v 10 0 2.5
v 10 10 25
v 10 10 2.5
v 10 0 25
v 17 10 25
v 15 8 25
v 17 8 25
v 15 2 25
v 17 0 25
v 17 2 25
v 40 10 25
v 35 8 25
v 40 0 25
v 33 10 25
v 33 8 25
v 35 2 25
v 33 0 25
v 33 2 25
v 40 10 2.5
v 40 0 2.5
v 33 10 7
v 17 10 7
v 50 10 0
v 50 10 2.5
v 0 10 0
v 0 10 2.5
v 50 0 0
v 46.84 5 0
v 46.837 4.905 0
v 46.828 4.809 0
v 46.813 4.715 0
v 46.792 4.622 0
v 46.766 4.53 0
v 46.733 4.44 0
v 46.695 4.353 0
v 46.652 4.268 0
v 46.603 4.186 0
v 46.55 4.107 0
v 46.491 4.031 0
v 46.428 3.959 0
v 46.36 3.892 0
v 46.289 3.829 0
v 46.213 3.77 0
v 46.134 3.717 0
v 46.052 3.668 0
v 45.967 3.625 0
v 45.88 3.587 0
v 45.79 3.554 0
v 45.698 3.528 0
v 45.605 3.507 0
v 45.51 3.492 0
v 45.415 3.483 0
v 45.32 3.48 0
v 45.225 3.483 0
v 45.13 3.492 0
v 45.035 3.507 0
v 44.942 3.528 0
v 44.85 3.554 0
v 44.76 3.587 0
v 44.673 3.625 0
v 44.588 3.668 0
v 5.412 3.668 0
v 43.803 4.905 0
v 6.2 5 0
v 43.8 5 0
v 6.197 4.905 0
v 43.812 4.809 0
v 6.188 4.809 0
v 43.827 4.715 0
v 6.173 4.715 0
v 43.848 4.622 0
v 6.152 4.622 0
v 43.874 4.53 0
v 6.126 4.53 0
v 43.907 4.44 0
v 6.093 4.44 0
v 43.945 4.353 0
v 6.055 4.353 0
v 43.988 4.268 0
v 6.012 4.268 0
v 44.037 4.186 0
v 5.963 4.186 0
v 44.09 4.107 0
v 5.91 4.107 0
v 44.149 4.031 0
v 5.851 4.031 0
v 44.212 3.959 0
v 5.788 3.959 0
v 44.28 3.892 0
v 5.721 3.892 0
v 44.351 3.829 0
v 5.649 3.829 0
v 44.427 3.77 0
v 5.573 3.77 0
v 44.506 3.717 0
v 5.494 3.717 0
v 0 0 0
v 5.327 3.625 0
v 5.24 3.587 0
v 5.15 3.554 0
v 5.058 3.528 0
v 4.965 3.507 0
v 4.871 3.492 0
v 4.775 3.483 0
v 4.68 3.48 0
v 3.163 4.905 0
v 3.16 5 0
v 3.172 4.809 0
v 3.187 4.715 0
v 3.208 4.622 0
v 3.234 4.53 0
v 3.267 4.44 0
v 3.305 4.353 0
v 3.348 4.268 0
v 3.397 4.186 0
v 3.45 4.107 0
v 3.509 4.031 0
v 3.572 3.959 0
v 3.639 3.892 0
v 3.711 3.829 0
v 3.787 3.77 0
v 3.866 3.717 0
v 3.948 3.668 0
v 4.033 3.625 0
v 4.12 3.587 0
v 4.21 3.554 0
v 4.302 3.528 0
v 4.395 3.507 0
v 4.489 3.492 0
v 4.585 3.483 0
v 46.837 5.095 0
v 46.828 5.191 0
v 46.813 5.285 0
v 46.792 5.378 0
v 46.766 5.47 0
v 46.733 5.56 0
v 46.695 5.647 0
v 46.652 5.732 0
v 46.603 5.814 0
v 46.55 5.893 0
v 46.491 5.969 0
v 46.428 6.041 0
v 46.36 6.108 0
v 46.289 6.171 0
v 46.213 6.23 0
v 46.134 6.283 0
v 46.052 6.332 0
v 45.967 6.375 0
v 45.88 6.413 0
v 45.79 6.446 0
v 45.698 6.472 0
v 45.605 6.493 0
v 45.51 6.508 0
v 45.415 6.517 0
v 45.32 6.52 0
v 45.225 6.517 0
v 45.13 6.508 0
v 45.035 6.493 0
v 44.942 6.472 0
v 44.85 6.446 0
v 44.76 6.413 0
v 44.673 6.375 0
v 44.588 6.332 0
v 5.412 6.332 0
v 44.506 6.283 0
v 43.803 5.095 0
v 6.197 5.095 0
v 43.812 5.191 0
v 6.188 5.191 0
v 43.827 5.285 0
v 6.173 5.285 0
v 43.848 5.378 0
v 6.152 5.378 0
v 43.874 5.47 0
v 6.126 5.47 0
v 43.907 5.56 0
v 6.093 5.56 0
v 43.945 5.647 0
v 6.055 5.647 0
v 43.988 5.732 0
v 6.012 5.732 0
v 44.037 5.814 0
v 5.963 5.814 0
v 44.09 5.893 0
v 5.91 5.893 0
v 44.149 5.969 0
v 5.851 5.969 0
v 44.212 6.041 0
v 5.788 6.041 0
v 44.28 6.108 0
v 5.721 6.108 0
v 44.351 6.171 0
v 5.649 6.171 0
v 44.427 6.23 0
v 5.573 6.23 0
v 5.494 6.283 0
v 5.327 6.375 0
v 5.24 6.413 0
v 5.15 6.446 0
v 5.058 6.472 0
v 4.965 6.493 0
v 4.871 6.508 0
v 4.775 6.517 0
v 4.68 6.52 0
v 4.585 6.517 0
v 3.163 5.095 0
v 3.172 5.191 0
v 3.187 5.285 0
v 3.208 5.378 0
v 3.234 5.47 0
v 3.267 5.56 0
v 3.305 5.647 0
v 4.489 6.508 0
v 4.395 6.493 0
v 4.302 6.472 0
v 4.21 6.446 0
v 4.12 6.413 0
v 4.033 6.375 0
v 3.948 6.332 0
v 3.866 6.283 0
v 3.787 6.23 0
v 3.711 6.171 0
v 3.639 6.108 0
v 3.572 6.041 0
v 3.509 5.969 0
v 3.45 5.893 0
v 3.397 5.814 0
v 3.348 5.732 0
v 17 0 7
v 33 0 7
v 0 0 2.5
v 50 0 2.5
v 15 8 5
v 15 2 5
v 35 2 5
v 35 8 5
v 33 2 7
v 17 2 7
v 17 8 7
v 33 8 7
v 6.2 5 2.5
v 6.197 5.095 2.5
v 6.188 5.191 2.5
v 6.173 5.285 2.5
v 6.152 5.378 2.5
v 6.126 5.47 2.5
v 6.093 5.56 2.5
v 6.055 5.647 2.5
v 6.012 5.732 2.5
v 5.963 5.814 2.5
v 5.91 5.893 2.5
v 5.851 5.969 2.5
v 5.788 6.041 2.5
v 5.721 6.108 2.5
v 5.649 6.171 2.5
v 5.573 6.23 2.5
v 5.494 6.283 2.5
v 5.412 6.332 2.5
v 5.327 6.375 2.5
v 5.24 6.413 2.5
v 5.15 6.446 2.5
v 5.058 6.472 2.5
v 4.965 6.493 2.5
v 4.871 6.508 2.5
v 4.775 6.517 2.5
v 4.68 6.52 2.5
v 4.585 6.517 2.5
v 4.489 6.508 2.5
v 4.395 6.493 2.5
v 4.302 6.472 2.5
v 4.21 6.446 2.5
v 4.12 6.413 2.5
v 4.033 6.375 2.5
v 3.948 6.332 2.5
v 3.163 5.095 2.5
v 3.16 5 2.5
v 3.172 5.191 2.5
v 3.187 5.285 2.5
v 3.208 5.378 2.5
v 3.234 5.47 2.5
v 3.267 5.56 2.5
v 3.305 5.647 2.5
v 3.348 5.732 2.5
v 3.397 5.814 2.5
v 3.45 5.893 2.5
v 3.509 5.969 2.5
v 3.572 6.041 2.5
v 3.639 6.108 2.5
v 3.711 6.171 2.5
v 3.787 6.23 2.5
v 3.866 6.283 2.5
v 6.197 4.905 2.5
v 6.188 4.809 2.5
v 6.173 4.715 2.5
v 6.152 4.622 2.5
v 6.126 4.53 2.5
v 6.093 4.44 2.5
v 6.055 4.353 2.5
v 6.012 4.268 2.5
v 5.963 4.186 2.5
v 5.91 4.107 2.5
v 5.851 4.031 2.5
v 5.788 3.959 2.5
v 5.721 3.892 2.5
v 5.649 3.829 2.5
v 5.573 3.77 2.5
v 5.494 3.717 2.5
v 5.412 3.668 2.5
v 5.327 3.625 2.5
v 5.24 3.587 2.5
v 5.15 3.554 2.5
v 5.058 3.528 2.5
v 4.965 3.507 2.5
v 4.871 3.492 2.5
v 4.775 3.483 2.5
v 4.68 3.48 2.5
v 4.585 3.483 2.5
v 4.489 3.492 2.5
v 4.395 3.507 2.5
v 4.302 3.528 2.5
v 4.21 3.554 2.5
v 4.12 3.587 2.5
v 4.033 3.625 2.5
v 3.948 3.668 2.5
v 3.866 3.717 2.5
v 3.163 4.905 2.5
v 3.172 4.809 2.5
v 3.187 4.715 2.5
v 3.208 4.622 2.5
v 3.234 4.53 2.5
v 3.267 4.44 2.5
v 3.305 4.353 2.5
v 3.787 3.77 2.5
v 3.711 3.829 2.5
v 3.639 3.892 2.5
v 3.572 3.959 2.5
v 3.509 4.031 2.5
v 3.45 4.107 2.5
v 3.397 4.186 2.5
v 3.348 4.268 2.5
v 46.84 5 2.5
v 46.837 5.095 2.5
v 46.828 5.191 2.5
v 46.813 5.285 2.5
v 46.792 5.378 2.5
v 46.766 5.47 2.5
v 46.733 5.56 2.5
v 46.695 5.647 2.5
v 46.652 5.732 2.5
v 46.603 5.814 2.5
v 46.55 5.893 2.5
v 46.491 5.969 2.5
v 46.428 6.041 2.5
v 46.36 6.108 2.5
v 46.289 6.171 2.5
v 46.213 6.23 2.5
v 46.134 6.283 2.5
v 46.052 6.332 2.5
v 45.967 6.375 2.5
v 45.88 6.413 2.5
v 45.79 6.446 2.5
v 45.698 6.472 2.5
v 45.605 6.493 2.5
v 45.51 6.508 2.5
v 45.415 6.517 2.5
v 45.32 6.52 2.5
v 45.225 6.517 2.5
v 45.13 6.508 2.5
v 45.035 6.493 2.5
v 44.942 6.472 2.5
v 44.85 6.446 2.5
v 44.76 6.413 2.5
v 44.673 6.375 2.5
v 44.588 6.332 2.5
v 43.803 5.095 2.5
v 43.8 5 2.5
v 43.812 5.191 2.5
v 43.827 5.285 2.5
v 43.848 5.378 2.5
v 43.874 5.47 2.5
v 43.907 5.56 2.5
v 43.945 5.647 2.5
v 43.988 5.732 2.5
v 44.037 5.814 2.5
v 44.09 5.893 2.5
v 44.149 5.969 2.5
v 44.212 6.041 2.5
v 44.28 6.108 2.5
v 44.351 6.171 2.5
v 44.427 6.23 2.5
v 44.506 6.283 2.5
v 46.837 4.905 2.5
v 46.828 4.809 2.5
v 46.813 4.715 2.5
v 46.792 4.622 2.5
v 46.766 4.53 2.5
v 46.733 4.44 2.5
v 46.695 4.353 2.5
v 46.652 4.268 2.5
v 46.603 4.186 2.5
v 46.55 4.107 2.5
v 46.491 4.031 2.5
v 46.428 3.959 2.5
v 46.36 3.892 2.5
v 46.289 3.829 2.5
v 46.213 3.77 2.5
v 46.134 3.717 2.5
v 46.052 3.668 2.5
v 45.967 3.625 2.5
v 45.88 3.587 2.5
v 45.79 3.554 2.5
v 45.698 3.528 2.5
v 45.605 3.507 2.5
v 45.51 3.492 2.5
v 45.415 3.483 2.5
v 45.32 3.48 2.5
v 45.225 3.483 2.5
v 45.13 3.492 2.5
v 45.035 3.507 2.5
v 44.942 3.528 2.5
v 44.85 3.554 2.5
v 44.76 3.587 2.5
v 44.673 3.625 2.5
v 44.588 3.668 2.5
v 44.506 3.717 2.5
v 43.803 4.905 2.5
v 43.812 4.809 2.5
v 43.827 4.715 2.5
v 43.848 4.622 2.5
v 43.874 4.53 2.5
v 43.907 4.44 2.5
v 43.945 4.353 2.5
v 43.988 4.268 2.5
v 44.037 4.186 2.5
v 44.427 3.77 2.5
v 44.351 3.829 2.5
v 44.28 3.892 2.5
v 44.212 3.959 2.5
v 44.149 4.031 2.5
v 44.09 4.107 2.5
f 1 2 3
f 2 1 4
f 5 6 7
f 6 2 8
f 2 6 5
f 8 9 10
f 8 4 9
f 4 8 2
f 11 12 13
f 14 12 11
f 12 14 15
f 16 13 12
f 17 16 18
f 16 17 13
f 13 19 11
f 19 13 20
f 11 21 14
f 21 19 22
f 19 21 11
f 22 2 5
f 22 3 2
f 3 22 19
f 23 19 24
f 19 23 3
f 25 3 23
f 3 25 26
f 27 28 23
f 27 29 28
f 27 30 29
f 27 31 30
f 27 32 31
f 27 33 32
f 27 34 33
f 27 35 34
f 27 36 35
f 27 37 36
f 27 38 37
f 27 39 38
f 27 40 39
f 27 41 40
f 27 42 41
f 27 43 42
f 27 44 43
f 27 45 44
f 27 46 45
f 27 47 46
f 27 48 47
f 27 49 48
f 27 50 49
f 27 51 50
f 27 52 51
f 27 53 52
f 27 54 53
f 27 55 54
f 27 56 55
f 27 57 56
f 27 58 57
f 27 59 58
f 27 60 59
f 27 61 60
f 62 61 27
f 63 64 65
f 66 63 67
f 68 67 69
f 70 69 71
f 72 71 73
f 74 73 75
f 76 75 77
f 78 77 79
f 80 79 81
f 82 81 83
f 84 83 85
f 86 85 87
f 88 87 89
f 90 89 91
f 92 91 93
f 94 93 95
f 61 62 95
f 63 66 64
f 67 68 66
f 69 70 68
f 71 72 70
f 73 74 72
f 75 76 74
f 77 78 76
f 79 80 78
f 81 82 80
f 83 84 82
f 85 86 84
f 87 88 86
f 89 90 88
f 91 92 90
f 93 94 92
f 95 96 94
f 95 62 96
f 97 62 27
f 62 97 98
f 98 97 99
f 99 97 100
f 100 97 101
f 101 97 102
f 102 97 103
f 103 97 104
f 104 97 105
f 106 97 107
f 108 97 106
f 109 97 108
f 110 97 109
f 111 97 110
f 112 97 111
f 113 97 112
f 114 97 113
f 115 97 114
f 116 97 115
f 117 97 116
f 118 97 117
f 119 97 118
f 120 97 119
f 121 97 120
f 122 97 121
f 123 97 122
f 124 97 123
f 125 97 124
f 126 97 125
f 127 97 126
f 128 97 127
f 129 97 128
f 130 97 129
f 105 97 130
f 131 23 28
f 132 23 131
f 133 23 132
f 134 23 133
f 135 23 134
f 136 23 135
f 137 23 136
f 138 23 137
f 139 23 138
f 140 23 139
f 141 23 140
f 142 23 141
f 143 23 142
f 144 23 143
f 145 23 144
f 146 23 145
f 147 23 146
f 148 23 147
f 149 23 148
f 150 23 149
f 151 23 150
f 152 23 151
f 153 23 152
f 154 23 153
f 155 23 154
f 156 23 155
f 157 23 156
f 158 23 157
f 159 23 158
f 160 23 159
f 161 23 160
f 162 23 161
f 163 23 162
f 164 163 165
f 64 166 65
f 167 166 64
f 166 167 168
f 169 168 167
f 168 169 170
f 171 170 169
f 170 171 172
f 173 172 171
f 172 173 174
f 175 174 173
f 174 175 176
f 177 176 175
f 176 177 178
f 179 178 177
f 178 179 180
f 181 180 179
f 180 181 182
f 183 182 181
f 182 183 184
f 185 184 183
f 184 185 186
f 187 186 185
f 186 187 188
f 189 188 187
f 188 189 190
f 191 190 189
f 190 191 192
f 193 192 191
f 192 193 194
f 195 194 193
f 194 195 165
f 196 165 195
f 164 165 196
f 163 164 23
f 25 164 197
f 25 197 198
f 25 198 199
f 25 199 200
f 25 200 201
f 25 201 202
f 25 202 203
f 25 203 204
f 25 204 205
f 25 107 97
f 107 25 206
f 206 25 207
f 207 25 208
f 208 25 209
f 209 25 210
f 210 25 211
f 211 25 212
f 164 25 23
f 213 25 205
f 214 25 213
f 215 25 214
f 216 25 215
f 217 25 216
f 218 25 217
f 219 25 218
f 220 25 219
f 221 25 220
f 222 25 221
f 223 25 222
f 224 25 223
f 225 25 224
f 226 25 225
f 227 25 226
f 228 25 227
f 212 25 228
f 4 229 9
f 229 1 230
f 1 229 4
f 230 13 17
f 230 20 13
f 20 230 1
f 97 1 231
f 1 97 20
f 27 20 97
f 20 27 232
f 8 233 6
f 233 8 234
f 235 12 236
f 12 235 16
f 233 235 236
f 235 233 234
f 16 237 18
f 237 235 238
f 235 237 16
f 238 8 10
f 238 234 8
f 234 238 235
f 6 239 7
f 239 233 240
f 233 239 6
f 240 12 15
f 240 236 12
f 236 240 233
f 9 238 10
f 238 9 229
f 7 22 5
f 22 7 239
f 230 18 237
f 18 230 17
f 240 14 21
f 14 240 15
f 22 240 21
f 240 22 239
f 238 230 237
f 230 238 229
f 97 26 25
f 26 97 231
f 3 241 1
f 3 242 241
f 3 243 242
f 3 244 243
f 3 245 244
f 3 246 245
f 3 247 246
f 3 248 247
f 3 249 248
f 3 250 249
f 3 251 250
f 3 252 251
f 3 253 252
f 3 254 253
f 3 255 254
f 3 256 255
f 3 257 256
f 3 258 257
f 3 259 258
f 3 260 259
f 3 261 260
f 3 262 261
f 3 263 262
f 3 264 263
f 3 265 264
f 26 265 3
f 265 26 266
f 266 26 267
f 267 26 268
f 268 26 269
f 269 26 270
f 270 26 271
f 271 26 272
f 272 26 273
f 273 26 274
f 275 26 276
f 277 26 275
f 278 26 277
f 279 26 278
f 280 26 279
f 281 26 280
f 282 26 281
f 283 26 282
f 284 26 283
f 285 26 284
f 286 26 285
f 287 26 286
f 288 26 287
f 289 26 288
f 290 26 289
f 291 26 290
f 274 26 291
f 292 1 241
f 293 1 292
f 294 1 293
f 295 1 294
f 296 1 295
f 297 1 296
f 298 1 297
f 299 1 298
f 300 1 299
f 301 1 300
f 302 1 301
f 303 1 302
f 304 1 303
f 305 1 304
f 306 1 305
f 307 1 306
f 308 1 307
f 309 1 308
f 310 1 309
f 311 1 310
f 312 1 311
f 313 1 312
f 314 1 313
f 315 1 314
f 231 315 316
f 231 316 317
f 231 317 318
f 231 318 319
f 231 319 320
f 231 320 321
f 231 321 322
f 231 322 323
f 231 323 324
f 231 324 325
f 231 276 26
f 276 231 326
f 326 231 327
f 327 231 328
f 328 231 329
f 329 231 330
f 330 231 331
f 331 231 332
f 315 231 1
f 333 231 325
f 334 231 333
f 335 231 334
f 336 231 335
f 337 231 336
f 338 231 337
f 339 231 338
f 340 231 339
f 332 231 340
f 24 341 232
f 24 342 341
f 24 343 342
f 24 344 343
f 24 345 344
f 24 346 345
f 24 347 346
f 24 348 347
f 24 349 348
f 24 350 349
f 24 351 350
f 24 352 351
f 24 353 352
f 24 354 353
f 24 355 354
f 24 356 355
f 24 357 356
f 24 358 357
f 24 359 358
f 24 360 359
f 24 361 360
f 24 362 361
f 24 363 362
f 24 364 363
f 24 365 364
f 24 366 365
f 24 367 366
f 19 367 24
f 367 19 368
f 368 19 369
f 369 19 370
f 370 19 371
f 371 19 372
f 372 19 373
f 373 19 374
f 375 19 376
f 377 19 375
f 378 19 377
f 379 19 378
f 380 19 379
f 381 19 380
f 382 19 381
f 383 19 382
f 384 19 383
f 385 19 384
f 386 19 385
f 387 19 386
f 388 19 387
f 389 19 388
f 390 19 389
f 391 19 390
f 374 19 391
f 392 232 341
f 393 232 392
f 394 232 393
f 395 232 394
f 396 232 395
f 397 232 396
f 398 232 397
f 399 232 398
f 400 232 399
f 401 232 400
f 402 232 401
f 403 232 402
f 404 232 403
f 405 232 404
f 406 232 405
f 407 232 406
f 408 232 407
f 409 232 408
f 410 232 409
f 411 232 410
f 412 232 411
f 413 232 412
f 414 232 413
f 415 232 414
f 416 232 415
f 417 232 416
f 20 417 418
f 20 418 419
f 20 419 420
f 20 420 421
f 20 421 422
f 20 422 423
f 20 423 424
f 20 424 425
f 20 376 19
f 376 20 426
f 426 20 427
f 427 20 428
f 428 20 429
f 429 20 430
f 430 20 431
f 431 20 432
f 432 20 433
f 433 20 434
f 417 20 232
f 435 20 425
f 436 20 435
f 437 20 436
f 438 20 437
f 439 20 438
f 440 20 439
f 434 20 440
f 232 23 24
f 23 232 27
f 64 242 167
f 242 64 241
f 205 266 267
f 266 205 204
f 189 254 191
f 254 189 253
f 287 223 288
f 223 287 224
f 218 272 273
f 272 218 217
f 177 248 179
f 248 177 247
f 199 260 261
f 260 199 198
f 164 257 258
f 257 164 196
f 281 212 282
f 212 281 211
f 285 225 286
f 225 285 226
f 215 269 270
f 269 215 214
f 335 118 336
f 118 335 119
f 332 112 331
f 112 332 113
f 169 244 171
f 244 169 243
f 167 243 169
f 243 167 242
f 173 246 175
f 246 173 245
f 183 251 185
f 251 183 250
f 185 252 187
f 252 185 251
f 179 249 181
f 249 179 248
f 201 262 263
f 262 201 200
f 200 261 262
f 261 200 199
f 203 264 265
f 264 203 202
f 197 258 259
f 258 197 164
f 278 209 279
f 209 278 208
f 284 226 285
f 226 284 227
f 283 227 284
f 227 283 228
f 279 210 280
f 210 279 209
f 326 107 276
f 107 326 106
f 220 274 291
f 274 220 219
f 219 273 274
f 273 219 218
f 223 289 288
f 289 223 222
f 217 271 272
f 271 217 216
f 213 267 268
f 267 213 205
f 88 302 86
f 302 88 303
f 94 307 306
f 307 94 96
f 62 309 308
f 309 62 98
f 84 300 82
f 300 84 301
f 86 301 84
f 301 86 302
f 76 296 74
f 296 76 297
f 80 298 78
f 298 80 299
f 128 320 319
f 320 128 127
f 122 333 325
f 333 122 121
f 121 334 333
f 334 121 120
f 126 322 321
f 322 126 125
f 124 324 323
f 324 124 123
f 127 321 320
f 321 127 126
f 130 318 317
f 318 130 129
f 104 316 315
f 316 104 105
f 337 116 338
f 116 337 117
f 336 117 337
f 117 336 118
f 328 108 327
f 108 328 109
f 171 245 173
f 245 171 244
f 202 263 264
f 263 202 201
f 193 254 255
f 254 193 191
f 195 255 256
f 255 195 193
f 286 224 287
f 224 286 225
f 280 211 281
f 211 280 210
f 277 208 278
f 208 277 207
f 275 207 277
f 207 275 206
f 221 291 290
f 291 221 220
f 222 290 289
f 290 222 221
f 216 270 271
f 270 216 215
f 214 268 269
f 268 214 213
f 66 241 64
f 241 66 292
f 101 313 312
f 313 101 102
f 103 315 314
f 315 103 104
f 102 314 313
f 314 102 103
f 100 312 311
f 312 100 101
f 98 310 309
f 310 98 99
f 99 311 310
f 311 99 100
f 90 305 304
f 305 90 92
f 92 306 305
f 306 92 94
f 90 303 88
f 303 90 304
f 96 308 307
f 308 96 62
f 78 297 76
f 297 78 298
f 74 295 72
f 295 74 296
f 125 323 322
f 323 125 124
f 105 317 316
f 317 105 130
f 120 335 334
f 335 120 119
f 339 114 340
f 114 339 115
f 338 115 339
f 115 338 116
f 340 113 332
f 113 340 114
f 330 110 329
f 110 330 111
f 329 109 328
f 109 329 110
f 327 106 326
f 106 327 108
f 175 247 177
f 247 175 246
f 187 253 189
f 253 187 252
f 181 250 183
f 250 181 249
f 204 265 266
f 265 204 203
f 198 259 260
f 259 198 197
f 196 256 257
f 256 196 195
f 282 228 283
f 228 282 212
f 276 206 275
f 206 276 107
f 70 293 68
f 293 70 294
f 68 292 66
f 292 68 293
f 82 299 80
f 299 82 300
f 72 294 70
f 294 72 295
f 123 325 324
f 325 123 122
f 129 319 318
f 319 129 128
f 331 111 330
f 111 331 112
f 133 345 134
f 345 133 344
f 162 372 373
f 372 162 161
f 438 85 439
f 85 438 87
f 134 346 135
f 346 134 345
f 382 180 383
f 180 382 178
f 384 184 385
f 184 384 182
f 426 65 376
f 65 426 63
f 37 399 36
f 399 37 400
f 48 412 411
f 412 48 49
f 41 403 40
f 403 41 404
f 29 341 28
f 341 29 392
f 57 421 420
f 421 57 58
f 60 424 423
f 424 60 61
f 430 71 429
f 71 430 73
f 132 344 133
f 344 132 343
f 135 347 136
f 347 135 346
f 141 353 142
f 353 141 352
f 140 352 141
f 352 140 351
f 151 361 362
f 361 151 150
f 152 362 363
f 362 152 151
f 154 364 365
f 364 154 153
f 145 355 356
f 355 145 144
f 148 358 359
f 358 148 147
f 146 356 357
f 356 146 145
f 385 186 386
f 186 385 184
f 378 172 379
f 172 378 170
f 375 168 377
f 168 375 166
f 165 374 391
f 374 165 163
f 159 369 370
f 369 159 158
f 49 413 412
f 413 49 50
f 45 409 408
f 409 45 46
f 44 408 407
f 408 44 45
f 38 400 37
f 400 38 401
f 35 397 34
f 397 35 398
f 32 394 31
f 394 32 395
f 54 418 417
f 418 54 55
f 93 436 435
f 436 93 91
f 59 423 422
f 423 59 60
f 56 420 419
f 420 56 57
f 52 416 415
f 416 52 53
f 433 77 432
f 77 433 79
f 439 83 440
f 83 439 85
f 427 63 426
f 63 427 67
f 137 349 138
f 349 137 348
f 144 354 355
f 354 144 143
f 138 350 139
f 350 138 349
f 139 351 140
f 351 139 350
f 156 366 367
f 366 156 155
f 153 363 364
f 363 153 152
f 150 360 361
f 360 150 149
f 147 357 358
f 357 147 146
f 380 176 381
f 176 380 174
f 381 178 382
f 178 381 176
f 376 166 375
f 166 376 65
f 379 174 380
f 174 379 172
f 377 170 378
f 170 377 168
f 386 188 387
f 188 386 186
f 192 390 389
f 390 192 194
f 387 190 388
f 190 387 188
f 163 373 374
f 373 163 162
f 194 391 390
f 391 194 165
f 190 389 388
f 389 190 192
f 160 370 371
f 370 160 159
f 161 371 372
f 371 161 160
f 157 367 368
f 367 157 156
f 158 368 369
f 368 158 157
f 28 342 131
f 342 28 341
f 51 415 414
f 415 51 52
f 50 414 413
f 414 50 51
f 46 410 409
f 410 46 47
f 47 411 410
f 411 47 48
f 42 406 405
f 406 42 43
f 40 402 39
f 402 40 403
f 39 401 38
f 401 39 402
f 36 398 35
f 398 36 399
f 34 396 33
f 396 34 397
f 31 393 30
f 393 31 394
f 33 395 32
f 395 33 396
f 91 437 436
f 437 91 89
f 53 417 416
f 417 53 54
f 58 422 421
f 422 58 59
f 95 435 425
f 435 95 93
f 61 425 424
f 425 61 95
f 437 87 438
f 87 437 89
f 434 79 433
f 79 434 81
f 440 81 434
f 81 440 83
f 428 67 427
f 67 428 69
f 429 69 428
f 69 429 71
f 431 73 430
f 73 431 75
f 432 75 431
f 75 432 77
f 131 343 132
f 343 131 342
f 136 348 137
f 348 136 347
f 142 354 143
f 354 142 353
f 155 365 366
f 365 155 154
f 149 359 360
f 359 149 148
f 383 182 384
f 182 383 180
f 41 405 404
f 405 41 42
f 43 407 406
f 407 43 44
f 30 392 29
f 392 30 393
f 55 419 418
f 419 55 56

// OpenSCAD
module foam() {
    color("Yellow") cube([20,6,20]); 
}

module body() {
    color("Red") cube([30,10,25]); 
}
module intersectionBlock() {
    color("Red") cube([16,20,25]); 
}

//hole 40,64

module hole (){
    color("Red") cylinder (h = 10, r=1.52, center = true, $fn=100);
}
module pad(){
    difference() {
        color("Red") cube([50,10,2.5]);
        translate([4.68,5,0]) hole();
        translate([4.68+(10.16*4),5,0]) hole();        
        }
    }
module frame() {
    color ("red")
    translate([10,0,0])
    union(){
        difference() {
            body();
            translate([5,2,5])foam();        
            translate([5,2,10])foam();        
            translate([7,-5,7])intersectionBlock();
            } 
        translate([-10,0,0]) pad();
        }
}
frame();
//translate([-10,0,0]) pad();
//hole();
//pad();
